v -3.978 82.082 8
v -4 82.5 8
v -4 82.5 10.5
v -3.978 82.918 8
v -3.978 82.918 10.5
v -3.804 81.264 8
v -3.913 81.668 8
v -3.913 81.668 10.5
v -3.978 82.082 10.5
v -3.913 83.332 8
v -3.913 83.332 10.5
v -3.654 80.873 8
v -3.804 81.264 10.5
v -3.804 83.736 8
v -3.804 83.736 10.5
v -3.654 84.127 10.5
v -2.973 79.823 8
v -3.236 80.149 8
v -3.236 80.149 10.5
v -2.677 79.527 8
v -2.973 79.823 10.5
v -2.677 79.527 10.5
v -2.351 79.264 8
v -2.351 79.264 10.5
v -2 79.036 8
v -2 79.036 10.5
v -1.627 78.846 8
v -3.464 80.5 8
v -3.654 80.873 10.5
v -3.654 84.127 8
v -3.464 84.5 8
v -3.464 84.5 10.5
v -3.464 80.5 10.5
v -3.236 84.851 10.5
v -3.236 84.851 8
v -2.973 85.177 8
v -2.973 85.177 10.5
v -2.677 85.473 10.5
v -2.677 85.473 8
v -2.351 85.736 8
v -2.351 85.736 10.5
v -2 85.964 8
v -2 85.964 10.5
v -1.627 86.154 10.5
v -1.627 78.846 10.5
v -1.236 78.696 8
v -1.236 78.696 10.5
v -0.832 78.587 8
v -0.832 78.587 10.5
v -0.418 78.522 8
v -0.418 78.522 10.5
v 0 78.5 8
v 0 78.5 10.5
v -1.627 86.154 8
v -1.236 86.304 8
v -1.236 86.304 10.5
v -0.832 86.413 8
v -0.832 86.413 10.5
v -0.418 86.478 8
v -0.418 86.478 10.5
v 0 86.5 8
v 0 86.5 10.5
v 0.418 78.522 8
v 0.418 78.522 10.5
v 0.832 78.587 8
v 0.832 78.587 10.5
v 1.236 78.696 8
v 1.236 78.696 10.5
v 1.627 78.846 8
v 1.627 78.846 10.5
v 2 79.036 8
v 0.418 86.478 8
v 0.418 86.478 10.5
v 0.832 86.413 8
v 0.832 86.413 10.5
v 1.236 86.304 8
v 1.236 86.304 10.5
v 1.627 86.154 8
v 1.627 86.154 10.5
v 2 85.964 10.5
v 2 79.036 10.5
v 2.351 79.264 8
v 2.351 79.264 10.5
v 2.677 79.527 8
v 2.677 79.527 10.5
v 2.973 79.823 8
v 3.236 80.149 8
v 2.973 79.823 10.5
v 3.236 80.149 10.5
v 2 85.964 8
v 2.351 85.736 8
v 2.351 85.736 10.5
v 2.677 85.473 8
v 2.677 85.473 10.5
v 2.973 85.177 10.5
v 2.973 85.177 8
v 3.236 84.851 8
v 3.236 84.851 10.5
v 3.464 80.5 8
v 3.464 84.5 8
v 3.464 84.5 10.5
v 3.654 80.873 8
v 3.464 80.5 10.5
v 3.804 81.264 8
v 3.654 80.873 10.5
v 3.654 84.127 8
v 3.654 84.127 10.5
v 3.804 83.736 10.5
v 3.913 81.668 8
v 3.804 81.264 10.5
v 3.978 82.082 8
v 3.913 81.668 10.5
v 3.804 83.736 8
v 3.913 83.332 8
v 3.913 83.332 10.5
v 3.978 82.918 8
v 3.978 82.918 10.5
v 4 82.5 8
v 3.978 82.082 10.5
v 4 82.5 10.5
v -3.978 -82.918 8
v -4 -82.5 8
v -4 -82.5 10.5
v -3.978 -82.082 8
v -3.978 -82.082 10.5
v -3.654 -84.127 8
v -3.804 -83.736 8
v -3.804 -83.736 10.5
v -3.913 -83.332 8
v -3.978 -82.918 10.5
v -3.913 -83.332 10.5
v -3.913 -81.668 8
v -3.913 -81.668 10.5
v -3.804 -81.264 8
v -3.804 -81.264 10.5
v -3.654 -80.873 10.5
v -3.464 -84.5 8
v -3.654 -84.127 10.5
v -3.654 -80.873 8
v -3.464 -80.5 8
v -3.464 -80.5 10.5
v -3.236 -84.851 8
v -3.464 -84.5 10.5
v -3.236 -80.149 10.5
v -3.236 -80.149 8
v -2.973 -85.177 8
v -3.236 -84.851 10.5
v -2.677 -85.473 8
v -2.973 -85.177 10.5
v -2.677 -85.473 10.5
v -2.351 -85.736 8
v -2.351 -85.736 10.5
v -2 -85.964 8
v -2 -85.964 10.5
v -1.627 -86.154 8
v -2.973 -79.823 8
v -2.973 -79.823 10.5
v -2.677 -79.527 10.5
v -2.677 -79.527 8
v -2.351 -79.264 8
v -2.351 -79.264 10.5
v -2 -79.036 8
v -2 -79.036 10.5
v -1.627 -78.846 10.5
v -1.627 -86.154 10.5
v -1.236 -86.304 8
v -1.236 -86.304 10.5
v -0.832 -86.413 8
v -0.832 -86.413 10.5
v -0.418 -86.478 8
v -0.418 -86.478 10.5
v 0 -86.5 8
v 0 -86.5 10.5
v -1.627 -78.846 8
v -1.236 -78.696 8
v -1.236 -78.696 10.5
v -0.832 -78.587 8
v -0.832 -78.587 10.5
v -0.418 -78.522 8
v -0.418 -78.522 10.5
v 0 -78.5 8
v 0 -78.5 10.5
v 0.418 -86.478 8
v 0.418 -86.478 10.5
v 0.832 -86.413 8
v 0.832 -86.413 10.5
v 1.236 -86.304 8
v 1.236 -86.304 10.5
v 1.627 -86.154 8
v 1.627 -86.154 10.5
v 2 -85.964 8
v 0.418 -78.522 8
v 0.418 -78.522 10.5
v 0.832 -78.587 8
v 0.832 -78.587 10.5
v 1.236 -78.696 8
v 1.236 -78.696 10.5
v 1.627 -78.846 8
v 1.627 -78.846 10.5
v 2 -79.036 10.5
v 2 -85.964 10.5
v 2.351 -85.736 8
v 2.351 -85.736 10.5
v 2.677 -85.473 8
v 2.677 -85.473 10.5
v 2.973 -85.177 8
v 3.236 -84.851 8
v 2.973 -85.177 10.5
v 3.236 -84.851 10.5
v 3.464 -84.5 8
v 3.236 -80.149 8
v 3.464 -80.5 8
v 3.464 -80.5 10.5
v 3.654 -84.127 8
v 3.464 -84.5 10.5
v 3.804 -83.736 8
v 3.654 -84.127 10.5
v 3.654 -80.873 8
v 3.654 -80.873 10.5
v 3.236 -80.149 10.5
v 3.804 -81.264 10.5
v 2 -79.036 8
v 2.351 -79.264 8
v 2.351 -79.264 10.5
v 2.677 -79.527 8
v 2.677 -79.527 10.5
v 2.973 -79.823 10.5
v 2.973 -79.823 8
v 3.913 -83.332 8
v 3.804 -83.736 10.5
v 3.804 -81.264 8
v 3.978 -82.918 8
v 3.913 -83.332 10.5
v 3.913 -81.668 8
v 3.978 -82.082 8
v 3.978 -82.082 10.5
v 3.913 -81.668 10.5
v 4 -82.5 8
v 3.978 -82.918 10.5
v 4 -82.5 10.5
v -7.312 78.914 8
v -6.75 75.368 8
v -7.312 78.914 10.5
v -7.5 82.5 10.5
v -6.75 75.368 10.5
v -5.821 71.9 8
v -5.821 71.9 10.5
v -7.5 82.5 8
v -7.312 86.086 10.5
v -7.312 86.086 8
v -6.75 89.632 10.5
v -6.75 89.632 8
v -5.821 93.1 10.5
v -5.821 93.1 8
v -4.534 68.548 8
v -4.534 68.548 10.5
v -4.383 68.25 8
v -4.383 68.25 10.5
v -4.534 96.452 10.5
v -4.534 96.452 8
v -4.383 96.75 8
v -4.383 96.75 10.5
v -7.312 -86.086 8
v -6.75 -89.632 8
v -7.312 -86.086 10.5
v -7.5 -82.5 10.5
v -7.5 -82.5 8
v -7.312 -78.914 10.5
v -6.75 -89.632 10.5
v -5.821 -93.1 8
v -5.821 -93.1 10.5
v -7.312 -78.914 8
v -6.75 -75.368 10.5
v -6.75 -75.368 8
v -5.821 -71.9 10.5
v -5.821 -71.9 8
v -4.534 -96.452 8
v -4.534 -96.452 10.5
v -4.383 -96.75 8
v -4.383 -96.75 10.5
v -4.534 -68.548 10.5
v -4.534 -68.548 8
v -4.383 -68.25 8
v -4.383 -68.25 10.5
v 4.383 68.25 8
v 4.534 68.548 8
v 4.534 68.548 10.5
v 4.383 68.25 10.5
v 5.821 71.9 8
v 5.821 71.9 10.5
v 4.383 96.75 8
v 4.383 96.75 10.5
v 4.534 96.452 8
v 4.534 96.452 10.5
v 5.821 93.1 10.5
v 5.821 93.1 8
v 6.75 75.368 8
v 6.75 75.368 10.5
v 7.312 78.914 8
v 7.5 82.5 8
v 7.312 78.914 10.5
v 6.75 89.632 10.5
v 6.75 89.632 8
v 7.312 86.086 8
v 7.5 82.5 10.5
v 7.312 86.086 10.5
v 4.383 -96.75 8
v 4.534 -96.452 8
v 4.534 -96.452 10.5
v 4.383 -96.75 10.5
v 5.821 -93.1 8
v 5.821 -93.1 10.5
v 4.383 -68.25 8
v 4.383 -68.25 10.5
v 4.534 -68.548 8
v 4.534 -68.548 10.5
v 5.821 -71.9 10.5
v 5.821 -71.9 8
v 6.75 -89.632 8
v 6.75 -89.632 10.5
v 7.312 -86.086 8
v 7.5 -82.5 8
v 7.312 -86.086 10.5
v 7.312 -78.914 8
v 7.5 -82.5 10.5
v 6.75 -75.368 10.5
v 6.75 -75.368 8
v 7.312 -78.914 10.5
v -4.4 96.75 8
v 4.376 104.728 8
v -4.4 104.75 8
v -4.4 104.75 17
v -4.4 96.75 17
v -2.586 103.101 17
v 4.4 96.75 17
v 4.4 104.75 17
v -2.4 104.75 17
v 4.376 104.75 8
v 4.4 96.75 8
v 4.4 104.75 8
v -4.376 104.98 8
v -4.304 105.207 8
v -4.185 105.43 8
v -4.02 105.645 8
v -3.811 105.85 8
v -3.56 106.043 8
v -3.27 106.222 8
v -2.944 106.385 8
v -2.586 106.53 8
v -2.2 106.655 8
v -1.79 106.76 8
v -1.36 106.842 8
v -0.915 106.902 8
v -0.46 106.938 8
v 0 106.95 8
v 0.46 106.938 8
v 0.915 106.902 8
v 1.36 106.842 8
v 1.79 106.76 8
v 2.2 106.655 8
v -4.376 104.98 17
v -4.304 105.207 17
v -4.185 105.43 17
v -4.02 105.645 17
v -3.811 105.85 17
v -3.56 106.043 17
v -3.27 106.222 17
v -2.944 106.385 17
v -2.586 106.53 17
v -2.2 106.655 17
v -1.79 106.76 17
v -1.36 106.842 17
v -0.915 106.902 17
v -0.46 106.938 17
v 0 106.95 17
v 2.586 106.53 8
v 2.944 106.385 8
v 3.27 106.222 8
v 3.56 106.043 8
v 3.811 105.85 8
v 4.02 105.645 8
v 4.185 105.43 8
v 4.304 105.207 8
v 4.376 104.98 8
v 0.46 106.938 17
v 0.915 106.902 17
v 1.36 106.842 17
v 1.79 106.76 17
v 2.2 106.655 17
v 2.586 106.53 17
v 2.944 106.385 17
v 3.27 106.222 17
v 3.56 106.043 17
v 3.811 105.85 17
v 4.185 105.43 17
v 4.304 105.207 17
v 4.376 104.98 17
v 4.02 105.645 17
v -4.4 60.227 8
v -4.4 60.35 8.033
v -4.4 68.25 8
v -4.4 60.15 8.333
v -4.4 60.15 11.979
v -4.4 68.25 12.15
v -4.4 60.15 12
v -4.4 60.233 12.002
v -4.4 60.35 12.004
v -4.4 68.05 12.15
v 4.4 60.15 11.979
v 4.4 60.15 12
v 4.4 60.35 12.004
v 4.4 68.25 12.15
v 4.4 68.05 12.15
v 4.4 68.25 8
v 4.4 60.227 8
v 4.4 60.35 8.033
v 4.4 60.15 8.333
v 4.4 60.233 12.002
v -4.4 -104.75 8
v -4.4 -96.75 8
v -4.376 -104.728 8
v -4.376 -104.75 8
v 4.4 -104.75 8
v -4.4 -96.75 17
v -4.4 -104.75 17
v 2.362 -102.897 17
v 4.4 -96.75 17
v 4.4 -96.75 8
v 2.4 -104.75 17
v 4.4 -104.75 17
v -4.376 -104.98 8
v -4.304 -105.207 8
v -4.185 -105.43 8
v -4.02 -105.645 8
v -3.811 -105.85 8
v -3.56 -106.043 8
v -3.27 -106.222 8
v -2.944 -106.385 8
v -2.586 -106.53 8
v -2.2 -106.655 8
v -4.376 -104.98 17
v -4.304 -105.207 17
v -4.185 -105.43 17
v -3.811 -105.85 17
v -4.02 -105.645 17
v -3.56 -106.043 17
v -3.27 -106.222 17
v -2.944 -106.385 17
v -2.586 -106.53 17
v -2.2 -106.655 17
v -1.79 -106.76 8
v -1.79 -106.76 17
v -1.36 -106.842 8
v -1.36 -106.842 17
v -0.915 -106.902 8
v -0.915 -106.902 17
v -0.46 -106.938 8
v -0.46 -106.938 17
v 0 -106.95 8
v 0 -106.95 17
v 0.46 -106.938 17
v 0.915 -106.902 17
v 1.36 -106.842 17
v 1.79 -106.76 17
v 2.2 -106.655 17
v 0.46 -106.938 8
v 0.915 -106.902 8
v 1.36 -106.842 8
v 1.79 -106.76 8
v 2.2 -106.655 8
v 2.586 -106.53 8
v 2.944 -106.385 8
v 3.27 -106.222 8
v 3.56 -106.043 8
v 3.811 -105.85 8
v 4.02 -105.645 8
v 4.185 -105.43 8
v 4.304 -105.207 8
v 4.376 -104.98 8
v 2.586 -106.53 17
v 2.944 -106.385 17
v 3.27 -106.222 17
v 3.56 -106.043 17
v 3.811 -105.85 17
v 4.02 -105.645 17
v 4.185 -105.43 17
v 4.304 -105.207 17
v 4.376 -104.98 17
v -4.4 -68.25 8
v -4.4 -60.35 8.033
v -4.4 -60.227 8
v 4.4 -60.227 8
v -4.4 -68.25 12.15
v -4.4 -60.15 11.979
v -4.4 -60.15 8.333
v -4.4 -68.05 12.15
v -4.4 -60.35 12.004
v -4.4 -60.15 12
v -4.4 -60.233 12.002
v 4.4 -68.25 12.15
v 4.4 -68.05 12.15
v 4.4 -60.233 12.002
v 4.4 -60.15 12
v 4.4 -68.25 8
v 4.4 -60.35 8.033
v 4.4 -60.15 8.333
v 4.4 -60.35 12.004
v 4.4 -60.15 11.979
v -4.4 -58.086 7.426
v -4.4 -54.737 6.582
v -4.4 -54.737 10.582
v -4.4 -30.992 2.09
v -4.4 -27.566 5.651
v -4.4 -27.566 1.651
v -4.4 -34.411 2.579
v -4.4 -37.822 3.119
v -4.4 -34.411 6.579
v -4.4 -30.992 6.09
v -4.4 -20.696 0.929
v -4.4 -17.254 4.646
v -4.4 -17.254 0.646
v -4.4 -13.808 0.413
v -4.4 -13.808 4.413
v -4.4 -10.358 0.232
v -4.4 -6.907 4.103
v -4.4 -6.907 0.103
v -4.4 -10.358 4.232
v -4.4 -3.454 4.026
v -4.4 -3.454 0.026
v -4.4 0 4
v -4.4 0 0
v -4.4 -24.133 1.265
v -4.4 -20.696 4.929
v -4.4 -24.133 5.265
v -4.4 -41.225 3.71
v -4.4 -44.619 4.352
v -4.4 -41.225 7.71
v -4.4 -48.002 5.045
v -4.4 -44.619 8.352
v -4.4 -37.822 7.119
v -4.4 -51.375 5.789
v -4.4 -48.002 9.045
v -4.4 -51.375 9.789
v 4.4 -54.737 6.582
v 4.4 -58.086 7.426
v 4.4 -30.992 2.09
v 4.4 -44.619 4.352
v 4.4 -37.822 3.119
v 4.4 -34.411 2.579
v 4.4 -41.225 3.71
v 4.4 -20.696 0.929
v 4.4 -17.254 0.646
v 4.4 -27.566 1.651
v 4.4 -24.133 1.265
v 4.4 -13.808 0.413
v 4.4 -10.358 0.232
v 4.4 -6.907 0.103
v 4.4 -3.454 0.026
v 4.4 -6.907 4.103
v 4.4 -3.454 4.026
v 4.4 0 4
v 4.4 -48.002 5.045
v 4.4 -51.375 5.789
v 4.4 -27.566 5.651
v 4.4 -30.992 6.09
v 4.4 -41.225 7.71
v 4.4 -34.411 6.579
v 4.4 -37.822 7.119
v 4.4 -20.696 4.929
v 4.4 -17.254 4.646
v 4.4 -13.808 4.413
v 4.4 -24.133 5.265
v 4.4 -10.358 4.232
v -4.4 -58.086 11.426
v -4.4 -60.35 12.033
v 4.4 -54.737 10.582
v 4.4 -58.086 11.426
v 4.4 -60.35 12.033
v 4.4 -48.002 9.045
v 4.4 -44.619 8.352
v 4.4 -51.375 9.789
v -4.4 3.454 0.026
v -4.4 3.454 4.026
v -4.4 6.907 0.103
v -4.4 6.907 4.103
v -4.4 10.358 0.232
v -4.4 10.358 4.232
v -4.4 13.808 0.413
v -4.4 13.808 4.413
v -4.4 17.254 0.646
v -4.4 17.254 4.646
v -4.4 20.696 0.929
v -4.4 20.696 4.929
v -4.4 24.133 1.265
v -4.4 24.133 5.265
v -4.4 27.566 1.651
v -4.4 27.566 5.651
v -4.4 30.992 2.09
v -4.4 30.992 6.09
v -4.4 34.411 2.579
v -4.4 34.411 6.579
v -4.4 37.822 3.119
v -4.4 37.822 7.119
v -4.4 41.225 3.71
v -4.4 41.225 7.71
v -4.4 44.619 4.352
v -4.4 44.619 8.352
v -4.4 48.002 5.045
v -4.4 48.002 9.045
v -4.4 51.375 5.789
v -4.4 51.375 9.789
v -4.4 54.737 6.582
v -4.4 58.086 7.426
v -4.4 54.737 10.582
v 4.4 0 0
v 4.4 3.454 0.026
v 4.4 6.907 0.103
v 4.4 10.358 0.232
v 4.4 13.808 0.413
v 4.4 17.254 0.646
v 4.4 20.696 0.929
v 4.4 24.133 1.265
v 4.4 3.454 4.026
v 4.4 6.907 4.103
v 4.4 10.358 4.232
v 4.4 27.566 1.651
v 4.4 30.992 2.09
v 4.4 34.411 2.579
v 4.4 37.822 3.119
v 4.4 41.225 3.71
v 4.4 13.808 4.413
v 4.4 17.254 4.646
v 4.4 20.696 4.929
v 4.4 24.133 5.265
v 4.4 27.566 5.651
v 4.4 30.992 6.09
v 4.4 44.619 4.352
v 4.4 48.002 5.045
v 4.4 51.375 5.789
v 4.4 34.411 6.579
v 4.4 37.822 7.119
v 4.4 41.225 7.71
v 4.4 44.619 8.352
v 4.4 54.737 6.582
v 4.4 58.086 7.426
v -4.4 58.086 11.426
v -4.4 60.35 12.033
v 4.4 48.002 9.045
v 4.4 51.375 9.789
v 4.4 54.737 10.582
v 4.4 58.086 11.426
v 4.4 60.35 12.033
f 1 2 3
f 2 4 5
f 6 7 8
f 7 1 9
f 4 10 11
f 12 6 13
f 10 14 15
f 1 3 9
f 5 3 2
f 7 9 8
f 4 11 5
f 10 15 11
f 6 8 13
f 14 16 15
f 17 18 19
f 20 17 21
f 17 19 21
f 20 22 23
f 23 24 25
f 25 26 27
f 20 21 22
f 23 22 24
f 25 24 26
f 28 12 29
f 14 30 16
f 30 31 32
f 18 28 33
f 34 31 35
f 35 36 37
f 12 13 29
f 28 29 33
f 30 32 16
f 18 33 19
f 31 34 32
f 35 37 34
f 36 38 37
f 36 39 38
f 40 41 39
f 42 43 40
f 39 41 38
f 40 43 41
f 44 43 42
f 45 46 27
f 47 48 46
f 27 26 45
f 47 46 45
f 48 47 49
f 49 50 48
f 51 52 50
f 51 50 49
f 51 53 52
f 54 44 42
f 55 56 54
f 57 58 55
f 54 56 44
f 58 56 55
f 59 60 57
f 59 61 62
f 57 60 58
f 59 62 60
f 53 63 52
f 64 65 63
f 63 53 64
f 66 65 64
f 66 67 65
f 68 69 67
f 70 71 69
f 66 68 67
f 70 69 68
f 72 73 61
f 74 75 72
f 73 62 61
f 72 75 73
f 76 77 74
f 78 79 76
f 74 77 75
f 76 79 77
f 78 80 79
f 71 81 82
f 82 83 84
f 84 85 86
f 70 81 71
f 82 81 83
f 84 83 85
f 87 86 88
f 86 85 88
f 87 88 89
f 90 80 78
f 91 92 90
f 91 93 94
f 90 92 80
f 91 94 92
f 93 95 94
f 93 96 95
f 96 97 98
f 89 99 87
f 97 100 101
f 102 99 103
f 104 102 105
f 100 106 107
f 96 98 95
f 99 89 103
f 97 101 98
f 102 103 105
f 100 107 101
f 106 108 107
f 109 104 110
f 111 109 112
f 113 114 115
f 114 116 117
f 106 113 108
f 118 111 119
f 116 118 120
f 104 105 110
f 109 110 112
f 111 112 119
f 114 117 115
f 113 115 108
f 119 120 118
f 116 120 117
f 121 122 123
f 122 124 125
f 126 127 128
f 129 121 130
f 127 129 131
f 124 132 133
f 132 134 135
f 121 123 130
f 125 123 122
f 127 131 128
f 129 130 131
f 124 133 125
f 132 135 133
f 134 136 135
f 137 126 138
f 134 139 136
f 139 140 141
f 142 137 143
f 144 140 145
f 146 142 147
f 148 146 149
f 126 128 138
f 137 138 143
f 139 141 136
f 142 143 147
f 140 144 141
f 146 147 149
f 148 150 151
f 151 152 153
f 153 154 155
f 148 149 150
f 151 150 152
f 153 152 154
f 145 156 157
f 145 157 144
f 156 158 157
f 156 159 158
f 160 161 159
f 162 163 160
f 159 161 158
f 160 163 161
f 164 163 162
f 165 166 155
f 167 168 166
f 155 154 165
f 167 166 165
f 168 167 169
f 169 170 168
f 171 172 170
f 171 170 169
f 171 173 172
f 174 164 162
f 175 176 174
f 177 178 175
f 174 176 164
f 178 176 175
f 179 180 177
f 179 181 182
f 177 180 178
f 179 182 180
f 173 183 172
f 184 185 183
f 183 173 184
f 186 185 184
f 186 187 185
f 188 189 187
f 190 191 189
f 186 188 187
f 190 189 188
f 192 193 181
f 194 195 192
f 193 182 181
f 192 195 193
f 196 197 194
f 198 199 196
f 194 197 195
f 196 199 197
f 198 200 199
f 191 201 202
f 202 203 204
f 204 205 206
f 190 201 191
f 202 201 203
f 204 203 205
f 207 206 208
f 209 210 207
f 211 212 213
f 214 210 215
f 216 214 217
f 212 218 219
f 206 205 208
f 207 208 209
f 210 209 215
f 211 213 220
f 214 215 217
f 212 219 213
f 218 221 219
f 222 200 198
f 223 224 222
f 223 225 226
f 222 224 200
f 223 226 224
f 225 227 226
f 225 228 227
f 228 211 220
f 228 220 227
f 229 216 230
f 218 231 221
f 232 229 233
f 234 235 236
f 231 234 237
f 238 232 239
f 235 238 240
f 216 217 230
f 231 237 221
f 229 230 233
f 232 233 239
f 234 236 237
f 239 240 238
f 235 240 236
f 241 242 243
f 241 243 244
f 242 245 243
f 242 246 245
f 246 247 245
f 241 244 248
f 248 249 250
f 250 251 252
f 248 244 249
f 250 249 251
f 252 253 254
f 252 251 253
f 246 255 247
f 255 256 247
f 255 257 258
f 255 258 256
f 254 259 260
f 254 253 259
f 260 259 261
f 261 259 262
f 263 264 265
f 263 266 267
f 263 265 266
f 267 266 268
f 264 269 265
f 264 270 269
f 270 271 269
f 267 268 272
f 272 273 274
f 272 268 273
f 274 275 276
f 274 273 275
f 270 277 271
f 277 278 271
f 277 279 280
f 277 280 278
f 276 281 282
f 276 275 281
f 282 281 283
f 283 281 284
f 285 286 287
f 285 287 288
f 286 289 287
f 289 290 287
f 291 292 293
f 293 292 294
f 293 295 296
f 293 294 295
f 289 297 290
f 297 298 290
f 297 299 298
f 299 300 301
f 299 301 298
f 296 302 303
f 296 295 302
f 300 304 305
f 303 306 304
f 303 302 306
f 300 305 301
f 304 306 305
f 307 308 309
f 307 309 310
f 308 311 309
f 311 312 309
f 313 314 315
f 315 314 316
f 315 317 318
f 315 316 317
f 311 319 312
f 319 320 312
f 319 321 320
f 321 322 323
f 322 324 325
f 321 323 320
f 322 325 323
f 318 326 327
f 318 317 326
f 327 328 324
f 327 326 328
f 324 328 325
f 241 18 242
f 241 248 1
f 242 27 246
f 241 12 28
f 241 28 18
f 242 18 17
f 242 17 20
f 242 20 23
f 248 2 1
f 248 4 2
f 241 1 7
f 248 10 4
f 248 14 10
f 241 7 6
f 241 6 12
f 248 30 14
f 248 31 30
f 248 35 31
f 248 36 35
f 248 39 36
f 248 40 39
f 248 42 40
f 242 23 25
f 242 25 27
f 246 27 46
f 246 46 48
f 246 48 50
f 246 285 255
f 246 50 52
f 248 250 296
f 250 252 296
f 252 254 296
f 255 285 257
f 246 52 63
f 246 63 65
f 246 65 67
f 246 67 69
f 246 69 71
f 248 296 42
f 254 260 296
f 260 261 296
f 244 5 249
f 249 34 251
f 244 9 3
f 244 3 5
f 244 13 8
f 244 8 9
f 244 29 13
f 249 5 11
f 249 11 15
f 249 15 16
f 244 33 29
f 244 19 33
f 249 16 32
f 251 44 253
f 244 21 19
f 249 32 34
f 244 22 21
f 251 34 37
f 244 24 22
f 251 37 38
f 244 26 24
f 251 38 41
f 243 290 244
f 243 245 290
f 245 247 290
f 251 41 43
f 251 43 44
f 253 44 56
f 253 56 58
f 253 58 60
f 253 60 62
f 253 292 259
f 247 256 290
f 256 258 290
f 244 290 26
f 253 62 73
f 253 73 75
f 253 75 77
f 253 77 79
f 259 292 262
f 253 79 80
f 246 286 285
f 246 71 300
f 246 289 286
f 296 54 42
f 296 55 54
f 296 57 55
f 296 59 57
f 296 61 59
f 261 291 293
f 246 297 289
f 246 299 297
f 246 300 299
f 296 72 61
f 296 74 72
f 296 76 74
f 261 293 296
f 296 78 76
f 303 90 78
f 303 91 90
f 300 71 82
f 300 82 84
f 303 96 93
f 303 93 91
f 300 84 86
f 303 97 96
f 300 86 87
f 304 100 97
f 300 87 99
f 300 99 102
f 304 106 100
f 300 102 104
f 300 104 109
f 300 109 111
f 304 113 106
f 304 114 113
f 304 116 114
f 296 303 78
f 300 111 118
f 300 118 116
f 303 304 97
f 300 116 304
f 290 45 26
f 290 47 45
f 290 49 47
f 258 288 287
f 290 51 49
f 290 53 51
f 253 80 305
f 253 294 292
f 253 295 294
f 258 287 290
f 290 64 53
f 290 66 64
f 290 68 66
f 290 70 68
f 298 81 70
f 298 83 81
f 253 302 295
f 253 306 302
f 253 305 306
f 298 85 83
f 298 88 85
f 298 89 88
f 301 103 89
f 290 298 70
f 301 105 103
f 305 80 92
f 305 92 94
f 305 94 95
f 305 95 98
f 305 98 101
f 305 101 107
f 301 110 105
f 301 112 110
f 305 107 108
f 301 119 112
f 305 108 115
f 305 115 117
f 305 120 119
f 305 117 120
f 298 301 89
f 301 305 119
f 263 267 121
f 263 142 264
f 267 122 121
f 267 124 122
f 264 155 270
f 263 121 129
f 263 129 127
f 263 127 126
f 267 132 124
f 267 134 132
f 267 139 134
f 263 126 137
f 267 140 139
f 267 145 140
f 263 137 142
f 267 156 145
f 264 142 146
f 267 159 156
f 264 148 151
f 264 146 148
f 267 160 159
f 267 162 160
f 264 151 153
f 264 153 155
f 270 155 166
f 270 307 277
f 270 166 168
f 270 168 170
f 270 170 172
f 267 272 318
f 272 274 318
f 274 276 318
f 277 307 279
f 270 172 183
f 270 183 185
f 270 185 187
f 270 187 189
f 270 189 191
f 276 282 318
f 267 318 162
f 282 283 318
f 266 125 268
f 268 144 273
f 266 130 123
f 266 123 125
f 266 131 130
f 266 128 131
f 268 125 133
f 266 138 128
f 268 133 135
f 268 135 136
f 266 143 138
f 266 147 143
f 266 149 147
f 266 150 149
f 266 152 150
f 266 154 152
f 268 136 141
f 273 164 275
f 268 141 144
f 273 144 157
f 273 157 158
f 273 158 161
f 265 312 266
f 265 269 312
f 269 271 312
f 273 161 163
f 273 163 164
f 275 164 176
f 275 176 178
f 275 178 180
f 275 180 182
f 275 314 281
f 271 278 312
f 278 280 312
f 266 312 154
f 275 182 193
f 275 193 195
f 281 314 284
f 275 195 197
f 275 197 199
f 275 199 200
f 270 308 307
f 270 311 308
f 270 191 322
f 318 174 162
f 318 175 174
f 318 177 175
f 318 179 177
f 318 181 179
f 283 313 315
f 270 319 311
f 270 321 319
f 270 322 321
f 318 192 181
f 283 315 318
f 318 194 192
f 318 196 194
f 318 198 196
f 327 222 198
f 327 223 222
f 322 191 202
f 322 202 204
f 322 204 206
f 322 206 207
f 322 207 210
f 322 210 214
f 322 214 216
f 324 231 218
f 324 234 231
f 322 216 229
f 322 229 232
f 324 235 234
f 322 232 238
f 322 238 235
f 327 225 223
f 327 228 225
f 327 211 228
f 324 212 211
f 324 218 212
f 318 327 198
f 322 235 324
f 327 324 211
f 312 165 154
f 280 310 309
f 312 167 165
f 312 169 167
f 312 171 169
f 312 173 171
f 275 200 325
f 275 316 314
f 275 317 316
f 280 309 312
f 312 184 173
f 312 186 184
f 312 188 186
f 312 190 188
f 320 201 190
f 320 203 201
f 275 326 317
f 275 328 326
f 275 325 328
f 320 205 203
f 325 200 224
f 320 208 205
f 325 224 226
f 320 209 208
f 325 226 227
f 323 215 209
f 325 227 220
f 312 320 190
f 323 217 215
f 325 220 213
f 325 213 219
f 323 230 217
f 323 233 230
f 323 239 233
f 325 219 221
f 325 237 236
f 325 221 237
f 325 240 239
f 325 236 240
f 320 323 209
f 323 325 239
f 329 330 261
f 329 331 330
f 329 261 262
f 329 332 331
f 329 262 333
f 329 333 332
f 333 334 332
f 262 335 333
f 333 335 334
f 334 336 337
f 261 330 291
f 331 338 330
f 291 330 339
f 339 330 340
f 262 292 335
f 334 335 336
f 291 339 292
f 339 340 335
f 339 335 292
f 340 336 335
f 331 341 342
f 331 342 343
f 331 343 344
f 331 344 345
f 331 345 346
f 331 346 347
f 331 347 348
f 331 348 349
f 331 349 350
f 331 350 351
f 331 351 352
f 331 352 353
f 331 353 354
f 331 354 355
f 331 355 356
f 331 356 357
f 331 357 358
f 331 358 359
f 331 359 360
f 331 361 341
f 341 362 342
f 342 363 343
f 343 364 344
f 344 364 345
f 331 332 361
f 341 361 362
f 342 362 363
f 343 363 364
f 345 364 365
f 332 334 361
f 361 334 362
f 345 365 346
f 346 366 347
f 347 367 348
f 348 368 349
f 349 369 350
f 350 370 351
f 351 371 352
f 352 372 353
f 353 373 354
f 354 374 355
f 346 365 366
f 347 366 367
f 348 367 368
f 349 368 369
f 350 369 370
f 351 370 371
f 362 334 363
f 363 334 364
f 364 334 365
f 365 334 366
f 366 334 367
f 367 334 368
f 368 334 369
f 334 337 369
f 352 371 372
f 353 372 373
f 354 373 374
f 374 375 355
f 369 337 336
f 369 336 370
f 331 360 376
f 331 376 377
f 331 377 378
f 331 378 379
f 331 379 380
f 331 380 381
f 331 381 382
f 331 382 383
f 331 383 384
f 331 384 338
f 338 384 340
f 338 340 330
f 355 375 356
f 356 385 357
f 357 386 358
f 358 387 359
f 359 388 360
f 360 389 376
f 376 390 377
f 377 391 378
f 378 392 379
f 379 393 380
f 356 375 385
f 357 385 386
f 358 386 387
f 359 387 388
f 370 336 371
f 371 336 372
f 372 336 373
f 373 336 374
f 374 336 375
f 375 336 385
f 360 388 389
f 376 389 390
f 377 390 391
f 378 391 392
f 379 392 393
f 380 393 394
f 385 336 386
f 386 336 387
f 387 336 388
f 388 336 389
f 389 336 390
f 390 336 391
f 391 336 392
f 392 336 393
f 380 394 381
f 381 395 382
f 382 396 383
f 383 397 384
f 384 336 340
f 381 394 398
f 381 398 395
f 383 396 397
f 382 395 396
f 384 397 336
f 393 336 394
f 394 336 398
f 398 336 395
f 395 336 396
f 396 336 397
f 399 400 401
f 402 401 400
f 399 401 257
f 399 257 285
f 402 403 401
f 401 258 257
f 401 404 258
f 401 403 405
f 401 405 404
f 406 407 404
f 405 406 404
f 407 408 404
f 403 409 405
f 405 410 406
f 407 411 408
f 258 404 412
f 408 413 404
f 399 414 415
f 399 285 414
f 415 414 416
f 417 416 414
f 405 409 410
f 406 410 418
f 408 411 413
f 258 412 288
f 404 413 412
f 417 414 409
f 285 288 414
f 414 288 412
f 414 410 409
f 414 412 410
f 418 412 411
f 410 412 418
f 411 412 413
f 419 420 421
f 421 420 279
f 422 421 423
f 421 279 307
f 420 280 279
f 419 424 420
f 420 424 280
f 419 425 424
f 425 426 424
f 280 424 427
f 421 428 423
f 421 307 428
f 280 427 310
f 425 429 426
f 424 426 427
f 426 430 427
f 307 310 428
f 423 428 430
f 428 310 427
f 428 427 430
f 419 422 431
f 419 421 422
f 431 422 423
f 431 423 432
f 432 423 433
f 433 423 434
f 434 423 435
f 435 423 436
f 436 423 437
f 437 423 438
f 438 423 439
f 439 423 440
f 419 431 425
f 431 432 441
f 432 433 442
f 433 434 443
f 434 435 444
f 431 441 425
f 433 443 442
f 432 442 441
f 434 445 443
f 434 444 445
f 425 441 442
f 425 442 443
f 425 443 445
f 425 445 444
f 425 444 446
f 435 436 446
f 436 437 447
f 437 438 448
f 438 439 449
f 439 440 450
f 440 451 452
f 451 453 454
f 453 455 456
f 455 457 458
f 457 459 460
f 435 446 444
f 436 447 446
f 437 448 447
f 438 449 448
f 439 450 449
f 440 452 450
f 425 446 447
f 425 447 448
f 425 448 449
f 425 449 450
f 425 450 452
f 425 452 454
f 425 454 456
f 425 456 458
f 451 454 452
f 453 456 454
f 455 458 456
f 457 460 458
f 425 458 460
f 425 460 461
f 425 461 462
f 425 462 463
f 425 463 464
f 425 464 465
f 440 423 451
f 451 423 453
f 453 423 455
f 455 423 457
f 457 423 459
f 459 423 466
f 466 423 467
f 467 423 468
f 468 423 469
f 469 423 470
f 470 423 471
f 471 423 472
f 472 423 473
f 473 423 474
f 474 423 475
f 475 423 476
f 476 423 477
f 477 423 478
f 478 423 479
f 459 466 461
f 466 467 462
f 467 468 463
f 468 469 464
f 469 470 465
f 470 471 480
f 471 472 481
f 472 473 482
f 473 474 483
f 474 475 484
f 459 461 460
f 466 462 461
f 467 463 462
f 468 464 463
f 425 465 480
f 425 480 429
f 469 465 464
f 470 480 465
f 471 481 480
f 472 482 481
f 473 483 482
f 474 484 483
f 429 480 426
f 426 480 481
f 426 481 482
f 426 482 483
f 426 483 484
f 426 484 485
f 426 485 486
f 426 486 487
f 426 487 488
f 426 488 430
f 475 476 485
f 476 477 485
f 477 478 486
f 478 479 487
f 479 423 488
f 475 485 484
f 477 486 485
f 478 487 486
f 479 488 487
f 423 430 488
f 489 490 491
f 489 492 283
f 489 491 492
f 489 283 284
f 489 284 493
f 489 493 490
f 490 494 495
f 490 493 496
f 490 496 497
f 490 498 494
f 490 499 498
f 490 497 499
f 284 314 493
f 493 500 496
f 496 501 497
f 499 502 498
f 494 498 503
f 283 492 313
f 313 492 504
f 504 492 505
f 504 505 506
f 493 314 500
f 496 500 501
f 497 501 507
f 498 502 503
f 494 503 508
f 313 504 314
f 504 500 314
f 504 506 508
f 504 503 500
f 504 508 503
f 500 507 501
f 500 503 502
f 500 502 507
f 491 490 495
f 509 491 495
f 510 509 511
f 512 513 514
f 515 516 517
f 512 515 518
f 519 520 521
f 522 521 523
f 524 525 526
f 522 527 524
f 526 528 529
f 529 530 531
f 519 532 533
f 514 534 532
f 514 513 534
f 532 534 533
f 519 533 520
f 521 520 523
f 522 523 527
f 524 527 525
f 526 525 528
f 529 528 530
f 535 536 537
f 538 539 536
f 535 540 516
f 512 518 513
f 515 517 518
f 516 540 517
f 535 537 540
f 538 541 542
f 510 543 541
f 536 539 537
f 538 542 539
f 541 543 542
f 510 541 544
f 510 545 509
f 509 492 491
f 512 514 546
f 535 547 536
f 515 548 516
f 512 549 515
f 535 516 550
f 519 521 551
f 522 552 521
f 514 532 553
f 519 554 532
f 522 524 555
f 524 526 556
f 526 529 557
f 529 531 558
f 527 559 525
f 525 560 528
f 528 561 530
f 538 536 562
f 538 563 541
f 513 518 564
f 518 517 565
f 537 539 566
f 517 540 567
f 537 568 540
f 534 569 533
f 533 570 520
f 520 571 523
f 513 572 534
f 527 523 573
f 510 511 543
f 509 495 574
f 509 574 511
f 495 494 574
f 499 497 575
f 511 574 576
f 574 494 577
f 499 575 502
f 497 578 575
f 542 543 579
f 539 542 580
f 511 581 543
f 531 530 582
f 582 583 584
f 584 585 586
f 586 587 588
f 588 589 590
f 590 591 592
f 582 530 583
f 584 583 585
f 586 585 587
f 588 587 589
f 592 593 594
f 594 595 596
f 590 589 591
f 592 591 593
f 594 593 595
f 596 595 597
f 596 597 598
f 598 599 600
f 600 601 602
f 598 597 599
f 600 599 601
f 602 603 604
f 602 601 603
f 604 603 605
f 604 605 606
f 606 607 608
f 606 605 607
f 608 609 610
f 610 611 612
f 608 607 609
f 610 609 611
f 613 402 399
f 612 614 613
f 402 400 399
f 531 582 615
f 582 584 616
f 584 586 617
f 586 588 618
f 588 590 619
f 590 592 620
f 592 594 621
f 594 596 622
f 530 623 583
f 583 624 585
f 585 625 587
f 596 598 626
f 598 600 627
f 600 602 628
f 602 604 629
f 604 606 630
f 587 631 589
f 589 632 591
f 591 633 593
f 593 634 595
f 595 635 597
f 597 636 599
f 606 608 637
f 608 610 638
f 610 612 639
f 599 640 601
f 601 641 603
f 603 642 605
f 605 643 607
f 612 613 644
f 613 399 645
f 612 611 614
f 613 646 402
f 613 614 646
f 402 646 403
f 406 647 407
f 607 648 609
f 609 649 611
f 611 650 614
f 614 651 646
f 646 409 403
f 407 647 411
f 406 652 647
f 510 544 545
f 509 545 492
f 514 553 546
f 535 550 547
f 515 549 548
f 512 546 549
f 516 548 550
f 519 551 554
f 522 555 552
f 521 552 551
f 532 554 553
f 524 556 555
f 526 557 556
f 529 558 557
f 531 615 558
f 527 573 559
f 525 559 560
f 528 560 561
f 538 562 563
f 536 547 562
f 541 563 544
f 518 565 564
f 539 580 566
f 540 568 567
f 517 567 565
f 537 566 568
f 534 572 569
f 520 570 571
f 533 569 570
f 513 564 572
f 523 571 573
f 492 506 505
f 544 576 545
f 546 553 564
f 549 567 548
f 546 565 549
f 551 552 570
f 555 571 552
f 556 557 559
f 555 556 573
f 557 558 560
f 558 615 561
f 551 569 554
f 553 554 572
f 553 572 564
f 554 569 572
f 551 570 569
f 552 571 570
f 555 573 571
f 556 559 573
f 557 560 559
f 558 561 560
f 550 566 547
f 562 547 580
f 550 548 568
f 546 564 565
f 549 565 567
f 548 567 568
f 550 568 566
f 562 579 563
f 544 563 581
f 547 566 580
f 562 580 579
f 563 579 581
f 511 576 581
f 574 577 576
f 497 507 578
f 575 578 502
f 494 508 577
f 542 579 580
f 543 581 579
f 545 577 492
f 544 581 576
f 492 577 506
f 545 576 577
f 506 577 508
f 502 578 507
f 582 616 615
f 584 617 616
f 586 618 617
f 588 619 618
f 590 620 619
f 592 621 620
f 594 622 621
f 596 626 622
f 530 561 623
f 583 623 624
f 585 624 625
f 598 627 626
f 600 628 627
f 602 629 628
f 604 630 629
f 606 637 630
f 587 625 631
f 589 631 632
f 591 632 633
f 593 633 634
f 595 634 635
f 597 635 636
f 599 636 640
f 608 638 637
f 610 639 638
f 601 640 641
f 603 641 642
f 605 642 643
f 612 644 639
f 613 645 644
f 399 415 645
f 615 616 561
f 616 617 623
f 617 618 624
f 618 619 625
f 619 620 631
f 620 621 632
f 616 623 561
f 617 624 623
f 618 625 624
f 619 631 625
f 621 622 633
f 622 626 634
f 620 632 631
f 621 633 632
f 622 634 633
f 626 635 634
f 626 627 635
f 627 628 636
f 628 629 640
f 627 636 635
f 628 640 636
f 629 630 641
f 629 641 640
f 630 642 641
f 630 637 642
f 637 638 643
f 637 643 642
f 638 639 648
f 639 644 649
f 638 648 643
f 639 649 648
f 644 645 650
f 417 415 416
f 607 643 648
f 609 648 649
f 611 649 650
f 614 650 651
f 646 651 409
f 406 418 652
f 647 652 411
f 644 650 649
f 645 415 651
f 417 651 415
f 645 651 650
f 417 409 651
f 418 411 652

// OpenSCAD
// Wing-Foil Mast Nut Spacer/Holder
// Version: 0.14

/* [General Settings] */
// Distance between bolt centers
nut_spacing = 165.0;

/* [Track & Nut Dimensions] */
shaft_width = 8.8;
nut_length = 28.5;
nut_thickness = 5.5;
bolt_hole_dia = 8.0;

/* [Holder Design Features] */
base_thickness = 2.5;
bridge_thickness = 4.0;
spring_bow = 8.0;
guide_height = 9.0;
stop_length = 8.0;

// The diameter of the cylinder used for the bottom bump
bottom_bump_dia = 18.0;
// Percent of the cylinder radius to protrude (0.3 = 30%)
bump_profile_percent = 0.3;
// Whether to include the bump
bump = false;

/* [Hidden] */
$fn = 60;
lip_thickness = base_thickness + nut_thickness * 0.3;

module extruded_bridge(w, span, t, bow, overlap=0.4) {
    R = (span*span)/(8*bow) + bow/2;
    rotate([90, 0, 90])
    linear_extrude(w, center=true)
    intersection() {
        translate([0, -bow])
            square([span + overlap, 2*R], center=true);
        translate([0, R - bow])
            difference() {
                // By translating the same circle vertically, we ensure the ends are flat
                // instead of being perpendicular to the curve.
                circle(r=R, $fn=420);
                translate([0, t]) circle(r=R, $fn=420);
            }
    }
}

module complete_spacer() {
    difference() {
        union() {
            for (dir = [1, -1]) {
                nut_y = dir * nut_spacing/2;

                // 1. Base platform
                base_w_center = 15.0;
                base_dx = (base_w_center - shaft_width) / 2;
                base_r = (base_dx * base_dx + (nut_length / 2) * (nut_length / 2)) / (2 * base_dx);

                translate([0, nut_y, base_thickness/2])
                    intersection() {
                        translate([base_r - base_w_center/2, 0, 0])
                            cylinder(h=base_thickness + 0.1, r=base_r, center=true);
                        translate([-base_r + base_w_center/2, 0, 0])
                            cylinder(h=base_thickness + 0.1, r=base_r, center=true);
                        cube([base_w_center + 1, nut_length, base_thickness], center=true);
                    }

                // 2. Outer Vertical Guide Wall (Centering)
                outer_pos = nut_y + dir * (nut_length/2 + stop_length/2);
                translate([0, outer_pos, guide_height/2])
                    cube([shaft_width, stop_length, guide_height], center=true);

                // Rounded tip
                extreme_end = nut_y + dir * (nut_length/2 + stop_length);
                translate([0, extreme_end, guide_height/2])
                    scale([1, 0.5, 1]) cylinder(h=guide_height, d=shaft_width, center=true);

                // 3. Inner Transition (Vertical wall + Slope)
                inner_start = nut_y - dir * nut_length/2;
                inner_end = inner_start - dir * stop_length;

                hull() {
                    translate([0, inner_start - dir*0.1, lip_thickness/2])
                        cube([shaft_width, 0.2, lip_thickness], center=true);
                    translate([0, inner_end, bridge_thickness/2])
                        cube([shaft_width, 0.2, bridge_thickness], center=true);
                }
            }

            // 4. Continuous Spring Bridge
            bridge_span = nut_spacing - nut_length - (stop_length * 2);
            extruded_bridge(w=shaft_width, span=bridge_span, t=bridge_thickness, bow=spring_bow, overlap=0.2);

            // 5. Recessed 30% Bump
            // Positioned so it is cut inside the body and only protrudes from the bottom
            if (bump) {
                bump_radius = bottom_bump_dia / 2;
                protrusion_height = bump_radius * bump_profile_percent;

                translate([0, 0, -spring_bow + bridge_thickness/2])
                intersection() {
                    // The Cylinder
                    translate([0, 0, bump_radius - protrusion_height])
                        rotate([0, 90, 0])
                        cylinder(h=shaft_width, d=bottom_bump_dia, center=true);

                    // The Shaving Cube: Limits the bump to the bridge's vertical volume
                    // This ensures the bump never pokes out the top of the bridge
                    translate([0, 0, -protrusion_height])
                        cube([shaft_width + 1, bottom_bump_dia, bridge_thickness + protrusion_height * 2], center=true);
                }
            }
        }

        // Bolt holes
        for (dir = [1, -1]) {
            nut_y = dir * nut_spacing/2;
            translate([0, nut_y, -1])
                cylinder(h=guide_height + 20, d=bolt_hole_dia);
        }
    }
}

// Final assembly positioning
translate([0, 0, spring_bow])
    complete_spacer();
